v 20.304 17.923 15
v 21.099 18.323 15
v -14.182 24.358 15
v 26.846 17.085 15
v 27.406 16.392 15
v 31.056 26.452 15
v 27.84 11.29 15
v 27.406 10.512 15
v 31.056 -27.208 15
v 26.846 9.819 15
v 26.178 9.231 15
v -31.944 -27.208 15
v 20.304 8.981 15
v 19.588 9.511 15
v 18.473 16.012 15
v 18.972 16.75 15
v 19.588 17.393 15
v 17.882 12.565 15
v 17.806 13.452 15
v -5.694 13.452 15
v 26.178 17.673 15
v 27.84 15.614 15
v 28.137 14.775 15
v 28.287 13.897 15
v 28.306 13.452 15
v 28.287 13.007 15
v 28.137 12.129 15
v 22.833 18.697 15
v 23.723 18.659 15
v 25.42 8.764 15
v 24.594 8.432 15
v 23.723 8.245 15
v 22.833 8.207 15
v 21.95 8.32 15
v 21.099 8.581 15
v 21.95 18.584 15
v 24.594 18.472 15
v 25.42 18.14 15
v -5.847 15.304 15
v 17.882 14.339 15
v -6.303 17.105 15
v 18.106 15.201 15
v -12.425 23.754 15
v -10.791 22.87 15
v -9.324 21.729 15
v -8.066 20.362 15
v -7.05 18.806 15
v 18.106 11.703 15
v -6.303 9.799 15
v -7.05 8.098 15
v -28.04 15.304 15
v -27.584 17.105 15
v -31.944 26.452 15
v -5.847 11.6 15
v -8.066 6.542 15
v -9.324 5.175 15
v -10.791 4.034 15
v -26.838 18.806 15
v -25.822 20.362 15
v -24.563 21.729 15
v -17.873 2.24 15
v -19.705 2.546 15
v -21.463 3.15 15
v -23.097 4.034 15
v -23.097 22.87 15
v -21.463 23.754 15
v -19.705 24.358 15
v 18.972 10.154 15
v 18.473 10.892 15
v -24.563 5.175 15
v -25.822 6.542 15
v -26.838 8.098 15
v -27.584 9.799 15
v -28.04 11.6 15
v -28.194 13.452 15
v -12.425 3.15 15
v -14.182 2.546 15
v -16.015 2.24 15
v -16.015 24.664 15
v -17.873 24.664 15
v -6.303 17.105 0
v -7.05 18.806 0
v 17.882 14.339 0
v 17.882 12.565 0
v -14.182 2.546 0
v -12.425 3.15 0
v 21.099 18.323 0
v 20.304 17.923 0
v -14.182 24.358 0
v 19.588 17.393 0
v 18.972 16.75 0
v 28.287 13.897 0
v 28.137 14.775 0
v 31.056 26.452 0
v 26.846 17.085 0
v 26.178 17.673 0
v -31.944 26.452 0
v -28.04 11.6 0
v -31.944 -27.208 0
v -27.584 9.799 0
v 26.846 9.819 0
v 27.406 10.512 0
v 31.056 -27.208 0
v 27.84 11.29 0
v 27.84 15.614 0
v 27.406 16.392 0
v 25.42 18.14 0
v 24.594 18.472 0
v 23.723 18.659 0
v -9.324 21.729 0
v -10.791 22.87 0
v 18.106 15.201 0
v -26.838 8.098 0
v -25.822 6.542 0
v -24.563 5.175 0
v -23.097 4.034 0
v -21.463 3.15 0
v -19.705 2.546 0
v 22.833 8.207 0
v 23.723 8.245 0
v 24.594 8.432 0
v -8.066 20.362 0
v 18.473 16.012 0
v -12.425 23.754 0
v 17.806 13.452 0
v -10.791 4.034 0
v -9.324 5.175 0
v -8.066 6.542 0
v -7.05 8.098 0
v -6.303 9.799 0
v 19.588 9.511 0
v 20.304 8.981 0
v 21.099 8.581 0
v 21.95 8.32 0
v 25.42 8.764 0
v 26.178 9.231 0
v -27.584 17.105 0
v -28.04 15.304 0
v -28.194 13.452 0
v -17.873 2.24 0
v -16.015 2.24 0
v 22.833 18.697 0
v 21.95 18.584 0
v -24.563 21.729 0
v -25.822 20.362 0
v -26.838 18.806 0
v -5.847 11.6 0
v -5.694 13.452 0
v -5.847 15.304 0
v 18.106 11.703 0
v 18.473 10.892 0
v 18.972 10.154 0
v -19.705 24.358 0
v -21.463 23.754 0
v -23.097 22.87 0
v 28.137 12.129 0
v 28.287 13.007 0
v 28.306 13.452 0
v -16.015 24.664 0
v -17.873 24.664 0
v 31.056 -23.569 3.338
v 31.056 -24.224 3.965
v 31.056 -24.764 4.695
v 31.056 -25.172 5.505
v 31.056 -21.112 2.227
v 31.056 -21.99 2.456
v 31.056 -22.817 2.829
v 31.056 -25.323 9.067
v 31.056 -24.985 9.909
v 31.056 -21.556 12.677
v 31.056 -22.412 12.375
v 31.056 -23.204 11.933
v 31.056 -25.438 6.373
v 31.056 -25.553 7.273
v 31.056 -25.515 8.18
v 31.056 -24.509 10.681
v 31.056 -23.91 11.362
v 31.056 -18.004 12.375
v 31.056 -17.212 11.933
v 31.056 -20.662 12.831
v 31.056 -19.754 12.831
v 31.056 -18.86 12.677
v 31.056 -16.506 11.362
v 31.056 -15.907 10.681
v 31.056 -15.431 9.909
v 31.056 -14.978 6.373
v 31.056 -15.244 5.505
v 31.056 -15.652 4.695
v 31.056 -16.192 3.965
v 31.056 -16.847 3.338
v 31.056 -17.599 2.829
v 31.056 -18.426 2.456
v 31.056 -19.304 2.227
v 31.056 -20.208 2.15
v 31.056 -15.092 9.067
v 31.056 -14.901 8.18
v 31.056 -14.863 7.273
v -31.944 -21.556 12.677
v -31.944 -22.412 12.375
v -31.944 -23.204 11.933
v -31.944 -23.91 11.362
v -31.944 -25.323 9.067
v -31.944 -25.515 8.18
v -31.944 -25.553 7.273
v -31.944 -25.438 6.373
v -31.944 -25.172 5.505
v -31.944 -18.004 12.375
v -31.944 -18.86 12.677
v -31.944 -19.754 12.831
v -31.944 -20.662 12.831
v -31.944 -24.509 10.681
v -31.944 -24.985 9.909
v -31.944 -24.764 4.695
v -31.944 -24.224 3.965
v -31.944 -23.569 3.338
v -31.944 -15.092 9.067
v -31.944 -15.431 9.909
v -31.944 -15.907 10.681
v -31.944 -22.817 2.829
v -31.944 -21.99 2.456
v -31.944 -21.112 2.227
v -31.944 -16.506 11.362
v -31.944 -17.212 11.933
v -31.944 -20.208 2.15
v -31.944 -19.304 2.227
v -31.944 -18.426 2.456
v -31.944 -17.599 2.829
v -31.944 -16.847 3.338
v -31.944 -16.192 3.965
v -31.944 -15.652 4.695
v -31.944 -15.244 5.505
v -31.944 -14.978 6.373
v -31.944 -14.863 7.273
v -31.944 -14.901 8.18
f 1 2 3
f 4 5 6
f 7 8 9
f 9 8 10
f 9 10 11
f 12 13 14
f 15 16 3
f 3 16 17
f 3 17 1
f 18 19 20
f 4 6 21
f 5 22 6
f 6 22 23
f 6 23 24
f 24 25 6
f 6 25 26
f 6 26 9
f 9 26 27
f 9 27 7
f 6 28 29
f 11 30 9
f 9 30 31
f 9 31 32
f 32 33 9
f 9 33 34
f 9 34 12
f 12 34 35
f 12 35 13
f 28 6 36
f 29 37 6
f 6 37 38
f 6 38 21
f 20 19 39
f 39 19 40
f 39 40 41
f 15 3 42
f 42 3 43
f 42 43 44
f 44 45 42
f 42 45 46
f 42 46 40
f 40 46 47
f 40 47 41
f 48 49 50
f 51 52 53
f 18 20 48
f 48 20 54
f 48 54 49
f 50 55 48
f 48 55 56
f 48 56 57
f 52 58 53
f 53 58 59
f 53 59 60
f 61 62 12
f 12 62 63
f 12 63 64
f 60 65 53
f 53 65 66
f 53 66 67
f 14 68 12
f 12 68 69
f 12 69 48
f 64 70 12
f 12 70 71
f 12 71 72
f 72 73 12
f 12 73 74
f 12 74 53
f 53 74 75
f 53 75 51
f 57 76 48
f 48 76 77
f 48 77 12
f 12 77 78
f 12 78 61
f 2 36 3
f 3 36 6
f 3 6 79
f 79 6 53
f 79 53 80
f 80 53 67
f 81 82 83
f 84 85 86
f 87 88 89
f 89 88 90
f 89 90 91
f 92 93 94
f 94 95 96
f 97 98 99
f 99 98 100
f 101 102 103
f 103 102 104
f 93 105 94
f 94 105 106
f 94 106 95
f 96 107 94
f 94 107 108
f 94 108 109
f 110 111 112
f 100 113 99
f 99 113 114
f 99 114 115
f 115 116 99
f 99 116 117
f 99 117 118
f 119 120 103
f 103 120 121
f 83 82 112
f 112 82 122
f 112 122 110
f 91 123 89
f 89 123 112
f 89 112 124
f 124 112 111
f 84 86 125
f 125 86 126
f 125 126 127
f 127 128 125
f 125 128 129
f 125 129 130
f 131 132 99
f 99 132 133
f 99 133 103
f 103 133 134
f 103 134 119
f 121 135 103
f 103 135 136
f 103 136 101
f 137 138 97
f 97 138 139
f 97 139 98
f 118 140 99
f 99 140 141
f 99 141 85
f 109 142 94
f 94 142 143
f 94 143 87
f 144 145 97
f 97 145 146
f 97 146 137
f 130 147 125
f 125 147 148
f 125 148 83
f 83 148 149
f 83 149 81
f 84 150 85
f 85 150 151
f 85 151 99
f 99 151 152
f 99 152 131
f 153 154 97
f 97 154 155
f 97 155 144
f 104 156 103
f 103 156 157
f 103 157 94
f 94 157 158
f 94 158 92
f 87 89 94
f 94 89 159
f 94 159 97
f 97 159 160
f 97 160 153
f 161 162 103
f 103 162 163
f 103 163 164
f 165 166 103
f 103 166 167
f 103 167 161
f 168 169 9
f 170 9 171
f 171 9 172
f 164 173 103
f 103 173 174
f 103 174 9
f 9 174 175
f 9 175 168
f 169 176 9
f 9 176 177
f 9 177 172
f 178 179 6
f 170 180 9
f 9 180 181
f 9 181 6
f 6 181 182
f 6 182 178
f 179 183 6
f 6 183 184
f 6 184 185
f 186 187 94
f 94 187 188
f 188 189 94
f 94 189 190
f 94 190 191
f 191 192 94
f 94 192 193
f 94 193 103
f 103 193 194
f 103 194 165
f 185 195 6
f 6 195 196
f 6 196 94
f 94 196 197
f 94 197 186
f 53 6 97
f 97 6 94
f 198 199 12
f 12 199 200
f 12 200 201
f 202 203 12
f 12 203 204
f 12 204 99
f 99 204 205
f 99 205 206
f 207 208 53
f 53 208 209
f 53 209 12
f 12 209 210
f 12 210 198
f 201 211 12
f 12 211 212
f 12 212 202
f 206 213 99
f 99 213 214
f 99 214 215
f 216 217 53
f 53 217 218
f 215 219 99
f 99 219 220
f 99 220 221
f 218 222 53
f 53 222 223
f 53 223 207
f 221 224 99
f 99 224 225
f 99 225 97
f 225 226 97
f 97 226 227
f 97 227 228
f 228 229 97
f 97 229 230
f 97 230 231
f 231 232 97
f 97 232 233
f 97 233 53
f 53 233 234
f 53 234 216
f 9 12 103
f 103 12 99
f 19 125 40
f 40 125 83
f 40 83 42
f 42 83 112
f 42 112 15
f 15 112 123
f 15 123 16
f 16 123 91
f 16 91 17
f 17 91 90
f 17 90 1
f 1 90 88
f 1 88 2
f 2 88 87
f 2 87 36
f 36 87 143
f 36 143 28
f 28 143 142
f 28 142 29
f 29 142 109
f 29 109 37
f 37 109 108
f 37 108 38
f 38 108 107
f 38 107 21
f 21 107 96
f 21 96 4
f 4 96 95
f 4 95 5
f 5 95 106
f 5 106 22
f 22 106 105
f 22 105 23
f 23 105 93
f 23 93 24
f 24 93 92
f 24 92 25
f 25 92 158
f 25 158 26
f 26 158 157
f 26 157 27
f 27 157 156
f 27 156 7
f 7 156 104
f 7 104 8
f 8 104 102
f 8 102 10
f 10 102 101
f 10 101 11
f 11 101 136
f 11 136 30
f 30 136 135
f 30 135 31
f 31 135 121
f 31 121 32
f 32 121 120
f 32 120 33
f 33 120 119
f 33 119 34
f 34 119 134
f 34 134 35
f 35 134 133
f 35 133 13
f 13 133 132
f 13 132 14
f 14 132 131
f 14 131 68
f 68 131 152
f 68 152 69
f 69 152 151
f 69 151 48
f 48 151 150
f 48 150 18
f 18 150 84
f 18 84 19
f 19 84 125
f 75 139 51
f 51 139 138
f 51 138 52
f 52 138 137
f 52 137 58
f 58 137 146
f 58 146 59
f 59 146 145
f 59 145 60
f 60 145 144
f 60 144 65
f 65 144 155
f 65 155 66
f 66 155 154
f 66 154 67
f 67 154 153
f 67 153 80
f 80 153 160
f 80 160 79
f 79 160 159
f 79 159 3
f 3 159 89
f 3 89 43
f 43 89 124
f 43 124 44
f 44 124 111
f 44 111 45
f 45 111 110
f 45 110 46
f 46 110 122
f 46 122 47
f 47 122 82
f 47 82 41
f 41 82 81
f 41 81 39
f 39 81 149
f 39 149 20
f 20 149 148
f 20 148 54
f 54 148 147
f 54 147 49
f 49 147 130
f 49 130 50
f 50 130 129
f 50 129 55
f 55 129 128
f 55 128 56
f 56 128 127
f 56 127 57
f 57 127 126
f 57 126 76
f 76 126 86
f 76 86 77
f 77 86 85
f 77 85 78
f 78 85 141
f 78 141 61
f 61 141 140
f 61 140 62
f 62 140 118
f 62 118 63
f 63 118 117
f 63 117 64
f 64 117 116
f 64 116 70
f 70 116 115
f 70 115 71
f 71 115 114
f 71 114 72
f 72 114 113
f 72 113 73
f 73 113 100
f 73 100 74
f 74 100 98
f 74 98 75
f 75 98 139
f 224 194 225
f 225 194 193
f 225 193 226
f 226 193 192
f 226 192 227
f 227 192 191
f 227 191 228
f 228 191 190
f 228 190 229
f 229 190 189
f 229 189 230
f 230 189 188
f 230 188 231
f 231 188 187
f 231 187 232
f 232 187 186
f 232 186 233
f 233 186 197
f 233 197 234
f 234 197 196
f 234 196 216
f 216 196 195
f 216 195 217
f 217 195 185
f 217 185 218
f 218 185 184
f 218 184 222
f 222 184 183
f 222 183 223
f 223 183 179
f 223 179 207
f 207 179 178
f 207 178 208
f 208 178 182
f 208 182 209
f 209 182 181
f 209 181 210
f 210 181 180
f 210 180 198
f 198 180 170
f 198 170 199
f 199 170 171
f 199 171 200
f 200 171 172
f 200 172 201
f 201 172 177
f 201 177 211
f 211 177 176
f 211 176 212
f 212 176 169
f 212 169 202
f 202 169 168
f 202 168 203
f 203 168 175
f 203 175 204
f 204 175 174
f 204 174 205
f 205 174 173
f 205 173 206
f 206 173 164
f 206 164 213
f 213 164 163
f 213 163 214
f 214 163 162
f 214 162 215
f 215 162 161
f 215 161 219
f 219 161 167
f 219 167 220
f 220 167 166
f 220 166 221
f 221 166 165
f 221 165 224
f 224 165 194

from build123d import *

# Parameters (mm, degrees)
SKETCH2_W           = 63
SKETCH2_H           = 53.66
SKETCH2_R           = 5.25
SKETCH2_R_2         = 11.25
BOSS_EXTRUDE1_DEPTH = 15
SKETCH3_R           = 5.35
CUT_EXTRUDE1_DEPTH  = 71.244392635


with BuildPart() as part:
    # Sketch2 → Boss-Extrude1 (new body)
    with BuildSketch(Plane.XY):
        with Locations((-0.443782019, -0.377989574)):
            Rectangle(SKETCH2_W, SKETCH2_H)
        with Locations((23.056217981, 13.452010426)):
            Circle(SKETCH2_R, mode=Mode.SUBTRACT)
        with Locations((-16.943782019, 13.452010426)):
            Circle(SKETCH2_R_2, mode=Mode.SUBTRACT)
    extrude(amount=BOSS_EXTRUDE1_DEPTH)

    # Sketch3 → Cut-Extrude1 (cut, through all)
    with BuildSketch(Plane(origin=(31.056217981, 0, 0), x_dir=(0, 0, -1), z_dir=(1, 0, 0))):
        with Locations((-7.5, -20.207989574)):
            Circle(SKETCH3_R)
    extrude(amount=-CUT_EXTRUDE1_DEPTH, mode=Mode.SUBTRACT)


solid = part.part
